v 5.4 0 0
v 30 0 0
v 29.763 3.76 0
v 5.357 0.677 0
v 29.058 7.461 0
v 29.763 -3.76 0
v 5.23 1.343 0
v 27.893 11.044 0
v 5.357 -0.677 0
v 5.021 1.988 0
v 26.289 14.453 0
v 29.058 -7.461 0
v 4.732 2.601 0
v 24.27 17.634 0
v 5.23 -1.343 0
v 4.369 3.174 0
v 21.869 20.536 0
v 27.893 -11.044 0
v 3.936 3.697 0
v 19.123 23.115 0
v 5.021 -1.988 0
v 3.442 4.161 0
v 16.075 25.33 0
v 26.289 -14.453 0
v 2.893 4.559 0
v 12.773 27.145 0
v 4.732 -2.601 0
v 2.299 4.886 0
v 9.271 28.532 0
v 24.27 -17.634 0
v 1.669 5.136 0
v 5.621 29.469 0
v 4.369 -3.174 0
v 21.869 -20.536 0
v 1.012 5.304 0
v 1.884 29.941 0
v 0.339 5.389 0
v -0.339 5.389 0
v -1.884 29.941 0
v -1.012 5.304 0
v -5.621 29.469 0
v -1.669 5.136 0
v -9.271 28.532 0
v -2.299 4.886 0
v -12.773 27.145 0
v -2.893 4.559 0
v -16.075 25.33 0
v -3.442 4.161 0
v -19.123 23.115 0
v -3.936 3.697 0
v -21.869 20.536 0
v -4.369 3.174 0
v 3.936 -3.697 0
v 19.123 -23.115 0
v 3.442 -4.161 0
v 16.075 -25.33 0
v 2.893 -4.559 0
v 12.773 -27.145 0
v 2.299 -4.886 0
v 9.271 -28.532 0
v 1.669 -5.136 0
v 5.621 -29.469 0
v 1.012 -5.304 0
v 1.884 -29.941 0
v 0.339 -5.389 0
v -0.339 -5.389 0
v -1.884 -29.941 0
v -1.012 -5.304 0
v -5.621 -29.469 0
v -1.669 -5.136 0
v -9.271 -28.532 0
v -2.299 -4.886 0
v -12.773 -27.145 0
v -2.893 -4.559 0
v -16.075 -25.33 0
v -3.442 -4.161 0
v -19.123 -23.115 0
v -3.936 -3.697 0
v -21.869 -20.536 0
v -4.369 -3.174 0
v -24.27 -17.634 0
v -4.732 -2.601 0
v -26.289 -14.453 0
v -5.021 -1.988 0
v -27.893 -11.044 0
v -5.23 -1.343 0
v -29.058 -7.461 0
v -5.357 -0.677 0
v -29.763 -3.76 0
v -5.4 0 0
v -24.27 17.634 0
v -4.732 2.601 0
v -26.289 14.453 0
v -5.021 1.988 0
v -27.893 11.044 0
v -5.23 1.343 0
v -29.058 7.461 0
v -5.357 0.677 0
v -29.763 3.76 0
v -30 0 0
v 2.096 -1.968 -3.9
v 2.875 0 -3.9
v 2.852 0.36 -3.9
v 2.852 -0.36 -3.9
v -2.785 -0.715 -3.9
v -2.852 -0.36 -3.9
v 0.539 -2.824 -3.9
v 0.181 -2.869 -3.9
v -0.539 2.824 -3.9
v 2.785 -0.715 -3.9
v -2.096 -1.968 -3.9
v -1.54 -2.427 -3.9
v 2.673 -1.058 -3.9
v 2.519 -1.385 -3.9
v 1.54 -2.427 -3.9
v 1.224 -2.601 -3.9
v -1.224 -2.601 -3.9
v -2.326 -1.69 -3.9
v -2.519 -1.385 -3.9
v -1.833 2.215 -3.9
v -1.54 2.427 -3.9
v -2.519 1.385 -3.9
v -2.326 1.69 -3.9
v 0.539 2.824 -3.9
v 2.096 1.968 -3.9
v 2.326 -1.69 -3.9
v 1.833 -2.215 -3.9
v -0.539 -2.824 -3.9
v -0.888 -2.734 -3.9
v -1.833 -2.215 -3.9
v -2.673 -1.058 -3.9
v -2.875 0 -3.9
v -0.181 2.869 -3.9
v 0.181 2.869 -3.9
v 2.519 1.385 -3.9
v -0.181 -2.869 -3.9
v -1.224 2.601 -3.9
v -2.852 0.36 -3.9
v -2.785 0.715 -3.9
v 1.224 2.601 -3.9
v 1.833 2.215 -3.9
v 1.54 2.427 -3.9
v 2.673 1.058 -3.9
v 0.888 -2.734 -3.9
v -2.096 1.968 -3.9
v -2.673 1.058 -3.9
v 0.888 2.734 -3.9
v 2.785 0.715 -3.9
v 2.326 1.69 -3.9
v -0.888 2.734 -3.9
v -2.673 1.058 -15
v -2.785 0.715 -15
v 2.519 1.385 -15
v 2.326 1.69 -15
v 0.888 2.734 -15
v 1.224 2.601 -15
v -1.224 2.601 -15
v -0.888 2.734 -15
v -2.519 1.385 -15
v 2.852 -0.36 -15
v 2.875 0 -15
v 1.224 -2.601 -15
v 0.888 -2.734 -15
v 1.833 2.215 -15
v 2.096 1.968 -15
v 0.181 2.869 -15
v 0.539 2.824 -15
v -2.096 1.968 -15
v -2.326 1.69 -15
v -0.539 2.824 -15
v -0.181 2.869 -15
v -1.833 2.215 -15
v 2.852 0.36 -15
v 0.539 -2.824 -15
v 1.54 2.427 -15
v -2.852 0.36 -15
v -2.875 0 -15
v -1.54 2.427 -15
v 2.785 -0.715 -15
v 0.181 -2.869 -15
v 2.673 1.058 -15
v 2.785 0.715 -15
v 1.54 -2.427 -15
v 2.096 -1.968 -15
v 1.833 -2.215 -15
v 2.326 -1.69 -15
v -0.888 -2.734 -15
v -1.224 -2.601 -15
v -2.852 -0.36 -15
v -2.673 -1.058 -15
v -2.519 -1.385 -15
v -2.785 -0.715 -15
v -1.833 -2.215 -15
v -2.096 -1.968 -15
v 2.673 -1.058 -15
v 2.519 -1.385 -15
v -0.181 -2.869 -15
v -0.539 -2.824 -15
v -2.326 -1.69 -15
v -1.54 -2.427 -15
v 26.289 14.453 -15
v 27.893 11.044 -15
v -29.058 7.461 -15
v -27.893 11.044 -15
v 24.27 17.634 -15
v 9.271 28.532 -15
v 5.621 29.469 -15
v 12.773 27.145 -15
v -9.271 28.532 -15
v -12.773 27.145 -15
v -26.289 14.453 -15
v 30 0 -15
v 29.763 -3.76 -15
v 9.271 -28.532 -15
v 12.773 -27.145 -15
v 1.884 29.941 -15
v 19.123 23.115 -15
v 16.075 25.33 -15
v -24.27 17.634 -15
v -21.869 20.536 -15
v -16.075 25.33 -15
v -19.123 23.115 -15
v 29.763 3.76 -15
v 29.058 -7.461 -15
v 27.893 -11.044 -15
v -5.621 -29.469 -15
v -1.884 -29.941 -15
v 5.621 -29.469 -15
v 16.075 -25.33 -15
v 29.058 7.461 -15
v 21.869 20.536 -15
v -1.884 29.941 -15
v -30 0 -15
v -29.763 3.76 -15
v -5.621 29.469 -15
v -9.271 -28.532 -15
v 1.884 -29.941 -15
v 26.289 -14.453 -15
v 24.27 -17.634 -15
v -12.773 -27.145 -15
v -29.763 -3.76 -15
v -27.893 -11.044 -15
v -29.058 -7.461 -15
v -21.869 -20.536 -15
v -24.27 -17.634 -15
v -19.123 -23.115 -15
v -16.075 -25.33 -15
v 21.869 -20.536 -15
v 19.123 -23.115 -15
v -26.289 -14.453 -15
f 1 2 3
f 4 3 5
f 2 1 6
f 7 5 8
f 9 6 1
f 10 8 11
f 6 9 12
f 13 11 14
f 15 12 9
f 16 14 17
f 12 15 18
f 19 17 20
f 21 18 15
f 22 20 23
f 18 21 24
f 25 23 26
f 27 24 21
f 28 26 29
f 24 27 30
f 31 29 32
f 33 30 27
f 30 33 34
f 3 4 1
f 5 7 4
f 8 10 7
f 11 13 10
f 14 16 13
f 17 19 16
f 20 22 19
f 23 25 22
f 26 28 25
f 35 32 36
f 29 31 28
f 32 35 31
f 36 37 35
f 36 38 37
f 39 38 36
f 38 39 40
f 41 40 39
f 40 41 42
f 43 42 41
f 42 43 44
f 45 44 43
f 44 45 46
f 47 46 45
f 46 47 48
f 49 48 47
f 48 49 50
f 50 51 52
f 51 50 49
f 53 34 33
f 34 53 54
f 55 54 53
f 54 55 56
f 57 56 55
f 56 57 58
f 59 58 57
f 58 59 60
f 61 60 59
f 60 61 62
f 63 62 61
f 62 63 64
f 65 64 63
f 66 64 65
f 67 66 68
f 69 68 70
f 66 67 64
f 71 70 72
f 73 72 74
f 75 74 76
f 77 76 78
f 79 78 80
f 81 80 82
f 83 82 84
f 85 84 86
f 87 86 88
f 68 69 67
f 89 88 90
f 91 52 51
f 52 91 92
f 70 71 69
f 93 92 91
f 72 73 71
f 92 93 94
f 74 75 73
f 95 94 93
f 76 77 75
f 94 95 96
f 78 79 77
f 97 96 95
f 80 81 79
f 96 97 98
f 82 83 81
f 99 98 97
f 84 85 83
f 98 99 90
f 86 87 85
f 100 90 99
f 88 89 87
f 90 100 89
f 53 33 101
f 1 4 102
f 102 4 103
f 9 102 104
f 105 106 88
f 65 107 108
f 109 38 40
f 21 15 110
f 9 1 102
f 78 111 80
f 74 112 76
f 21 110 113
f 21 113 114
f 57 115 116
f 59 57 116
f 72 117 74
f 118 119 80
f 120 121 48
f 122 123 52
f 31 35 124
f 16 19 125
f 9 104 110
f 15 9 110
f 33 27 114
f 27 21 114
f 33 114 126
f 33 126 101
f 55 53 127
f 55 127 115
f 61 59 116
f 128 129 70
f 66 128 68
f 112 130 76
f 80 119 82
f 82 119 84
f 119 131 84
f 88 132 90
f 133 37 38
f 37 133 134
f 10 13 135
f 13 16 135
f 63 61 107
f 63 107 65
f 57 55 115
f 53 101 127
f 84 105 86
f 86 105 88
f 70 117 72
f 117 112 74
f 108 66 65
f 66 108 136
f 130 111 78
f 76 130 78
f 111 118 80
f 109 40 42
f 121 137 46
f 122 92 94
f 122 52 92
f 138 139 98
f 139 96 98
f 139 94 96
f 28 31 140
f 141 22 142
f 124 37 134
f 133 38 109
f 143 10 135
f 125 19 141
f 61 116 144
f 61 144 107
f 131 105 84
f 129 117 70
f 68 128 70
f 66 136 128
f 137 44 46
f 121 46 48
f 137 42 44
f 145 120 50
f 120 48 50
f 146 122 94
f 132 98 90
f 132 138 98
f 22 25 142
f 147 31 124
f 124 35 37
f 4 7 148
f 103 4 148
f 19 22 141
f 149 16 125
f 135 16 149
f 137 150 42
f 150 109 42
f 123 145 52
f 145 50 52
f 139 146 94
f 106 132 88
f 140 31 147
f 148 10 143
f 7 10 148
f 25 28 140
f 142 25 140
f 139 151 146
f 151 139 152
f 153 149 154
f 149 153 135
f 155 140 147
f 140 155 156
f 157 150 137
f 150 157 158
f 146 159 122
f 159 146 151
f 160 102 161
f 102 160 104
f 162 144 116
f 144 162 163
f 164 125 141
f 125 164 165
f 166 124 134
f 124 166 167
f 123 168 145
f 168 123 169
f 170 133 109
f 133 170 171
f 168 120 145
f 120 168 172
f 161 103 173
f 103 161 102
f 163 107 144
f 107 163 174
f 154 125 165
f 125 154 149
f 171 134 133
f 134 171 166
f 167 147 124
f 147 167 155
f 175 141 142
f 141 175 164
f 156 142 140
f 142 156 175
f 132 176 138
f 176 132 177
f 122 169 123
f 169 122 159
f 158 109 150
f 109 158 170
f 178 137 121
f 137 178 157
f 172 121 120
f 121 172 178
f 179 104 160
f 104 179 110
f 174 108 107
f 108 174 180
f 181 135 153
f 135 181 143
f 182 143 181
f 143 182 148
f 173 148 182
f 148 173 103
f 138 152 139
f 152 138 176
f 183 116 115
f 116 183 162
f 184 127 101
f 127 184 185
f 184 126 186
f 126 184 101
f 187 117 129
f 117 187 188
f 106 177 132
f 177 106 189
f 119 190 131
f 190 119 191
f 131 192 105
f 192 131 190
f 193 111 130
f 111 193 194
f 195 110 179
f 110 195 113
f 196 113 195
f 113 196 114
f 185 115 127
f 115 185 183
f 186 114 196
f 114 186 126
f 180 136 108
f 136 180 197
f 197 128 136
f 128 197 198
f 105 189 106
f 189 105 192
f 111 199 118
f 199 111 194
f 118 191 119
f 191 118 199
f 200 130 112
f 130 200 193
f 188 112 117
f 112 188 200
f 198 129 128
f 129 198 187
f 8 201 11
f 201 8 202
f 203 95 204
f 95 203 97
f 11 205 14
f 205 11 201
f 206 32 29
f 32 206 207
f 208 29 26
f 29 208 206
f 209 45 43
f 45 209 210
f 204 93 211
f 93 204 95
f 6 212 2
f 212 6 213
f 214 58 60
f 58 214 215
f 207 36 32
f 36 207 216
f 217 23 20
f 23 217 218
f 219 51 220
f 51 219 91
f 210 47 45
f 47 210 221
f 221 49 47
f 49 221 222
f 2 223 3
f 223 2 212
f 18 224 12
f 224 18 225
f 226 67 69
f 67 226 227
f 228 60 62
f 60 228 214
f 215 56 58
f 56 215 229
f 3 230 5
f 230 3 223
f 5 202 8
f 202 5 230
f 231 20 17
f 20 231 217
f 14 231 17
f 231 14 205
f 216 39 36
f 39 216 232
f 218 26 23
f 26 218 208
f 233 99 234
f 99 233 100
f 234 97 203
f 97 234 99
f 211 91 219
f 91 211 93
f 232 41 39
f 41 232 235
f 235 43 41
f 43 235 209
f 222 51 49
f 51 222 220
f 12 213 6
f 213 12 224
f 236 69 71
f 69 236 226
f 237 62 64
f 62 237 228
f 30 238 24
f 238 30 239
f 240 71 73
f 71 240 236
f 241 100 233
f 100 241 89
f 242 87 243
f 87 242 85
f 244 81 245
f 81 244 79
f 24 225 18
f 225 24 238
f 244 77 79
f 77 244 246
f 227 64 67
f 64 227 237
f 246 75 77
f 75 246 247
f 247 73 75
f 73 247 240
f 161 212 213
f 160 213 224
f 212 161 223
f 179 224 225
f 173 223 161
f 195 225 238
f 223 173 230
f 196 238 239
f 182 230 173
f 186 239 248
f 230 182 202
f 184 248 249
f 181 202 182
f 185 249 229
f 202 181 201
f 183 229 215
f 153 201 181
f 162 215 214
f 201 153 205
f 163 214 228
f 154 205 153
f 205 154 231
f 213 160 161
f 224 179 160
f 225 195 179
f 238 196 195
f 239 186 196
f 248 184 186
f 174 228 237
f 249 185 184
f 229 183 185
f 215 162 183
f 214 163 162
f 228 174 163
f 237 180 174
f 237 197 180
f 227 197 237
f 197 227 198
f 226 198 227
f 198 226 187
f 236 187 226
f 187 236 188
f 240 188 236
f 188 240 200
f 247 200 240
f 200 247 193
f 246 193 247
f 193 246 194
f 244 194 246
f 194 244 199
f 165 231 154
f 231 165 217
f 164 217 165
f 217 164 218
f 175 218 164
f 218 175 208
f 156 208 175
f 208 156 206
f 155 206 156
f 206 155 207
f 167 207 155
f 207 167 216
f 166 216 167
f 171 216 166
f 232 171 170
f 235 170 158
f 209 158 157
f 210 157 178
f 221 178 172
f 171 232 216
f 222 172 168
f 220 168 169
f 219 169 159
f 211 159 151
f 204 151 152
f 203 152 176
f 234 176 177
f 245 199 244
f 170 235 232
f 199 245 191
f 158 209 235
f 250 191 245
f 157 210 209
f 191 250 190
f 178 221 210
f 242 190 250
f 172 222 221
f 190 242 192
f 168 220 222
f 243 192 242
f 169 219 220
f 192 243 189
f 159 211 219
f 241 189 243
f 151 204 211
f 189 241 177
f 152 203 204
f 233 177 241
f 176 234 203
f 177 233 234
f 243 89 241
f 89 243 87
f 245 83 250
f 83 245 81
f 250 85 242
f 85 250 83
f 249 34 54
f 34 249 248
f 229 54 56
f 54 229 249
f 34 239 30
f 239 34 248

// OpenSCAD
$fn = 50;

difference() {
	union() {
		translate(v = [0, 0, -15.0]) {
			cylinder(h = 15, r = 30.0);
		}
	}
	union() {
		translate(v = [0, 0, 0]) {
			rotate(a = [0, 0, 0]) {
				difference() {
					union() {
						translate(v = [0, 0, -18.0]) {
							cylinder(h = 18, r = 2.6);
						}
						translate(v = [0, 0, -3.9]) {
							cylinder(h = 3.9, r1 = 2.875, r2 = 5.4);
						}
						translate(v = [0, 0, -18.0]) {
							cylinder(h = 18, r = 2.875);
						}
						translate(v = [0, 0, -18.0]) {
							cylinder(h = 18, r = 2.6);
						}
					}
					union();
				}
			}
		}
	}
}
